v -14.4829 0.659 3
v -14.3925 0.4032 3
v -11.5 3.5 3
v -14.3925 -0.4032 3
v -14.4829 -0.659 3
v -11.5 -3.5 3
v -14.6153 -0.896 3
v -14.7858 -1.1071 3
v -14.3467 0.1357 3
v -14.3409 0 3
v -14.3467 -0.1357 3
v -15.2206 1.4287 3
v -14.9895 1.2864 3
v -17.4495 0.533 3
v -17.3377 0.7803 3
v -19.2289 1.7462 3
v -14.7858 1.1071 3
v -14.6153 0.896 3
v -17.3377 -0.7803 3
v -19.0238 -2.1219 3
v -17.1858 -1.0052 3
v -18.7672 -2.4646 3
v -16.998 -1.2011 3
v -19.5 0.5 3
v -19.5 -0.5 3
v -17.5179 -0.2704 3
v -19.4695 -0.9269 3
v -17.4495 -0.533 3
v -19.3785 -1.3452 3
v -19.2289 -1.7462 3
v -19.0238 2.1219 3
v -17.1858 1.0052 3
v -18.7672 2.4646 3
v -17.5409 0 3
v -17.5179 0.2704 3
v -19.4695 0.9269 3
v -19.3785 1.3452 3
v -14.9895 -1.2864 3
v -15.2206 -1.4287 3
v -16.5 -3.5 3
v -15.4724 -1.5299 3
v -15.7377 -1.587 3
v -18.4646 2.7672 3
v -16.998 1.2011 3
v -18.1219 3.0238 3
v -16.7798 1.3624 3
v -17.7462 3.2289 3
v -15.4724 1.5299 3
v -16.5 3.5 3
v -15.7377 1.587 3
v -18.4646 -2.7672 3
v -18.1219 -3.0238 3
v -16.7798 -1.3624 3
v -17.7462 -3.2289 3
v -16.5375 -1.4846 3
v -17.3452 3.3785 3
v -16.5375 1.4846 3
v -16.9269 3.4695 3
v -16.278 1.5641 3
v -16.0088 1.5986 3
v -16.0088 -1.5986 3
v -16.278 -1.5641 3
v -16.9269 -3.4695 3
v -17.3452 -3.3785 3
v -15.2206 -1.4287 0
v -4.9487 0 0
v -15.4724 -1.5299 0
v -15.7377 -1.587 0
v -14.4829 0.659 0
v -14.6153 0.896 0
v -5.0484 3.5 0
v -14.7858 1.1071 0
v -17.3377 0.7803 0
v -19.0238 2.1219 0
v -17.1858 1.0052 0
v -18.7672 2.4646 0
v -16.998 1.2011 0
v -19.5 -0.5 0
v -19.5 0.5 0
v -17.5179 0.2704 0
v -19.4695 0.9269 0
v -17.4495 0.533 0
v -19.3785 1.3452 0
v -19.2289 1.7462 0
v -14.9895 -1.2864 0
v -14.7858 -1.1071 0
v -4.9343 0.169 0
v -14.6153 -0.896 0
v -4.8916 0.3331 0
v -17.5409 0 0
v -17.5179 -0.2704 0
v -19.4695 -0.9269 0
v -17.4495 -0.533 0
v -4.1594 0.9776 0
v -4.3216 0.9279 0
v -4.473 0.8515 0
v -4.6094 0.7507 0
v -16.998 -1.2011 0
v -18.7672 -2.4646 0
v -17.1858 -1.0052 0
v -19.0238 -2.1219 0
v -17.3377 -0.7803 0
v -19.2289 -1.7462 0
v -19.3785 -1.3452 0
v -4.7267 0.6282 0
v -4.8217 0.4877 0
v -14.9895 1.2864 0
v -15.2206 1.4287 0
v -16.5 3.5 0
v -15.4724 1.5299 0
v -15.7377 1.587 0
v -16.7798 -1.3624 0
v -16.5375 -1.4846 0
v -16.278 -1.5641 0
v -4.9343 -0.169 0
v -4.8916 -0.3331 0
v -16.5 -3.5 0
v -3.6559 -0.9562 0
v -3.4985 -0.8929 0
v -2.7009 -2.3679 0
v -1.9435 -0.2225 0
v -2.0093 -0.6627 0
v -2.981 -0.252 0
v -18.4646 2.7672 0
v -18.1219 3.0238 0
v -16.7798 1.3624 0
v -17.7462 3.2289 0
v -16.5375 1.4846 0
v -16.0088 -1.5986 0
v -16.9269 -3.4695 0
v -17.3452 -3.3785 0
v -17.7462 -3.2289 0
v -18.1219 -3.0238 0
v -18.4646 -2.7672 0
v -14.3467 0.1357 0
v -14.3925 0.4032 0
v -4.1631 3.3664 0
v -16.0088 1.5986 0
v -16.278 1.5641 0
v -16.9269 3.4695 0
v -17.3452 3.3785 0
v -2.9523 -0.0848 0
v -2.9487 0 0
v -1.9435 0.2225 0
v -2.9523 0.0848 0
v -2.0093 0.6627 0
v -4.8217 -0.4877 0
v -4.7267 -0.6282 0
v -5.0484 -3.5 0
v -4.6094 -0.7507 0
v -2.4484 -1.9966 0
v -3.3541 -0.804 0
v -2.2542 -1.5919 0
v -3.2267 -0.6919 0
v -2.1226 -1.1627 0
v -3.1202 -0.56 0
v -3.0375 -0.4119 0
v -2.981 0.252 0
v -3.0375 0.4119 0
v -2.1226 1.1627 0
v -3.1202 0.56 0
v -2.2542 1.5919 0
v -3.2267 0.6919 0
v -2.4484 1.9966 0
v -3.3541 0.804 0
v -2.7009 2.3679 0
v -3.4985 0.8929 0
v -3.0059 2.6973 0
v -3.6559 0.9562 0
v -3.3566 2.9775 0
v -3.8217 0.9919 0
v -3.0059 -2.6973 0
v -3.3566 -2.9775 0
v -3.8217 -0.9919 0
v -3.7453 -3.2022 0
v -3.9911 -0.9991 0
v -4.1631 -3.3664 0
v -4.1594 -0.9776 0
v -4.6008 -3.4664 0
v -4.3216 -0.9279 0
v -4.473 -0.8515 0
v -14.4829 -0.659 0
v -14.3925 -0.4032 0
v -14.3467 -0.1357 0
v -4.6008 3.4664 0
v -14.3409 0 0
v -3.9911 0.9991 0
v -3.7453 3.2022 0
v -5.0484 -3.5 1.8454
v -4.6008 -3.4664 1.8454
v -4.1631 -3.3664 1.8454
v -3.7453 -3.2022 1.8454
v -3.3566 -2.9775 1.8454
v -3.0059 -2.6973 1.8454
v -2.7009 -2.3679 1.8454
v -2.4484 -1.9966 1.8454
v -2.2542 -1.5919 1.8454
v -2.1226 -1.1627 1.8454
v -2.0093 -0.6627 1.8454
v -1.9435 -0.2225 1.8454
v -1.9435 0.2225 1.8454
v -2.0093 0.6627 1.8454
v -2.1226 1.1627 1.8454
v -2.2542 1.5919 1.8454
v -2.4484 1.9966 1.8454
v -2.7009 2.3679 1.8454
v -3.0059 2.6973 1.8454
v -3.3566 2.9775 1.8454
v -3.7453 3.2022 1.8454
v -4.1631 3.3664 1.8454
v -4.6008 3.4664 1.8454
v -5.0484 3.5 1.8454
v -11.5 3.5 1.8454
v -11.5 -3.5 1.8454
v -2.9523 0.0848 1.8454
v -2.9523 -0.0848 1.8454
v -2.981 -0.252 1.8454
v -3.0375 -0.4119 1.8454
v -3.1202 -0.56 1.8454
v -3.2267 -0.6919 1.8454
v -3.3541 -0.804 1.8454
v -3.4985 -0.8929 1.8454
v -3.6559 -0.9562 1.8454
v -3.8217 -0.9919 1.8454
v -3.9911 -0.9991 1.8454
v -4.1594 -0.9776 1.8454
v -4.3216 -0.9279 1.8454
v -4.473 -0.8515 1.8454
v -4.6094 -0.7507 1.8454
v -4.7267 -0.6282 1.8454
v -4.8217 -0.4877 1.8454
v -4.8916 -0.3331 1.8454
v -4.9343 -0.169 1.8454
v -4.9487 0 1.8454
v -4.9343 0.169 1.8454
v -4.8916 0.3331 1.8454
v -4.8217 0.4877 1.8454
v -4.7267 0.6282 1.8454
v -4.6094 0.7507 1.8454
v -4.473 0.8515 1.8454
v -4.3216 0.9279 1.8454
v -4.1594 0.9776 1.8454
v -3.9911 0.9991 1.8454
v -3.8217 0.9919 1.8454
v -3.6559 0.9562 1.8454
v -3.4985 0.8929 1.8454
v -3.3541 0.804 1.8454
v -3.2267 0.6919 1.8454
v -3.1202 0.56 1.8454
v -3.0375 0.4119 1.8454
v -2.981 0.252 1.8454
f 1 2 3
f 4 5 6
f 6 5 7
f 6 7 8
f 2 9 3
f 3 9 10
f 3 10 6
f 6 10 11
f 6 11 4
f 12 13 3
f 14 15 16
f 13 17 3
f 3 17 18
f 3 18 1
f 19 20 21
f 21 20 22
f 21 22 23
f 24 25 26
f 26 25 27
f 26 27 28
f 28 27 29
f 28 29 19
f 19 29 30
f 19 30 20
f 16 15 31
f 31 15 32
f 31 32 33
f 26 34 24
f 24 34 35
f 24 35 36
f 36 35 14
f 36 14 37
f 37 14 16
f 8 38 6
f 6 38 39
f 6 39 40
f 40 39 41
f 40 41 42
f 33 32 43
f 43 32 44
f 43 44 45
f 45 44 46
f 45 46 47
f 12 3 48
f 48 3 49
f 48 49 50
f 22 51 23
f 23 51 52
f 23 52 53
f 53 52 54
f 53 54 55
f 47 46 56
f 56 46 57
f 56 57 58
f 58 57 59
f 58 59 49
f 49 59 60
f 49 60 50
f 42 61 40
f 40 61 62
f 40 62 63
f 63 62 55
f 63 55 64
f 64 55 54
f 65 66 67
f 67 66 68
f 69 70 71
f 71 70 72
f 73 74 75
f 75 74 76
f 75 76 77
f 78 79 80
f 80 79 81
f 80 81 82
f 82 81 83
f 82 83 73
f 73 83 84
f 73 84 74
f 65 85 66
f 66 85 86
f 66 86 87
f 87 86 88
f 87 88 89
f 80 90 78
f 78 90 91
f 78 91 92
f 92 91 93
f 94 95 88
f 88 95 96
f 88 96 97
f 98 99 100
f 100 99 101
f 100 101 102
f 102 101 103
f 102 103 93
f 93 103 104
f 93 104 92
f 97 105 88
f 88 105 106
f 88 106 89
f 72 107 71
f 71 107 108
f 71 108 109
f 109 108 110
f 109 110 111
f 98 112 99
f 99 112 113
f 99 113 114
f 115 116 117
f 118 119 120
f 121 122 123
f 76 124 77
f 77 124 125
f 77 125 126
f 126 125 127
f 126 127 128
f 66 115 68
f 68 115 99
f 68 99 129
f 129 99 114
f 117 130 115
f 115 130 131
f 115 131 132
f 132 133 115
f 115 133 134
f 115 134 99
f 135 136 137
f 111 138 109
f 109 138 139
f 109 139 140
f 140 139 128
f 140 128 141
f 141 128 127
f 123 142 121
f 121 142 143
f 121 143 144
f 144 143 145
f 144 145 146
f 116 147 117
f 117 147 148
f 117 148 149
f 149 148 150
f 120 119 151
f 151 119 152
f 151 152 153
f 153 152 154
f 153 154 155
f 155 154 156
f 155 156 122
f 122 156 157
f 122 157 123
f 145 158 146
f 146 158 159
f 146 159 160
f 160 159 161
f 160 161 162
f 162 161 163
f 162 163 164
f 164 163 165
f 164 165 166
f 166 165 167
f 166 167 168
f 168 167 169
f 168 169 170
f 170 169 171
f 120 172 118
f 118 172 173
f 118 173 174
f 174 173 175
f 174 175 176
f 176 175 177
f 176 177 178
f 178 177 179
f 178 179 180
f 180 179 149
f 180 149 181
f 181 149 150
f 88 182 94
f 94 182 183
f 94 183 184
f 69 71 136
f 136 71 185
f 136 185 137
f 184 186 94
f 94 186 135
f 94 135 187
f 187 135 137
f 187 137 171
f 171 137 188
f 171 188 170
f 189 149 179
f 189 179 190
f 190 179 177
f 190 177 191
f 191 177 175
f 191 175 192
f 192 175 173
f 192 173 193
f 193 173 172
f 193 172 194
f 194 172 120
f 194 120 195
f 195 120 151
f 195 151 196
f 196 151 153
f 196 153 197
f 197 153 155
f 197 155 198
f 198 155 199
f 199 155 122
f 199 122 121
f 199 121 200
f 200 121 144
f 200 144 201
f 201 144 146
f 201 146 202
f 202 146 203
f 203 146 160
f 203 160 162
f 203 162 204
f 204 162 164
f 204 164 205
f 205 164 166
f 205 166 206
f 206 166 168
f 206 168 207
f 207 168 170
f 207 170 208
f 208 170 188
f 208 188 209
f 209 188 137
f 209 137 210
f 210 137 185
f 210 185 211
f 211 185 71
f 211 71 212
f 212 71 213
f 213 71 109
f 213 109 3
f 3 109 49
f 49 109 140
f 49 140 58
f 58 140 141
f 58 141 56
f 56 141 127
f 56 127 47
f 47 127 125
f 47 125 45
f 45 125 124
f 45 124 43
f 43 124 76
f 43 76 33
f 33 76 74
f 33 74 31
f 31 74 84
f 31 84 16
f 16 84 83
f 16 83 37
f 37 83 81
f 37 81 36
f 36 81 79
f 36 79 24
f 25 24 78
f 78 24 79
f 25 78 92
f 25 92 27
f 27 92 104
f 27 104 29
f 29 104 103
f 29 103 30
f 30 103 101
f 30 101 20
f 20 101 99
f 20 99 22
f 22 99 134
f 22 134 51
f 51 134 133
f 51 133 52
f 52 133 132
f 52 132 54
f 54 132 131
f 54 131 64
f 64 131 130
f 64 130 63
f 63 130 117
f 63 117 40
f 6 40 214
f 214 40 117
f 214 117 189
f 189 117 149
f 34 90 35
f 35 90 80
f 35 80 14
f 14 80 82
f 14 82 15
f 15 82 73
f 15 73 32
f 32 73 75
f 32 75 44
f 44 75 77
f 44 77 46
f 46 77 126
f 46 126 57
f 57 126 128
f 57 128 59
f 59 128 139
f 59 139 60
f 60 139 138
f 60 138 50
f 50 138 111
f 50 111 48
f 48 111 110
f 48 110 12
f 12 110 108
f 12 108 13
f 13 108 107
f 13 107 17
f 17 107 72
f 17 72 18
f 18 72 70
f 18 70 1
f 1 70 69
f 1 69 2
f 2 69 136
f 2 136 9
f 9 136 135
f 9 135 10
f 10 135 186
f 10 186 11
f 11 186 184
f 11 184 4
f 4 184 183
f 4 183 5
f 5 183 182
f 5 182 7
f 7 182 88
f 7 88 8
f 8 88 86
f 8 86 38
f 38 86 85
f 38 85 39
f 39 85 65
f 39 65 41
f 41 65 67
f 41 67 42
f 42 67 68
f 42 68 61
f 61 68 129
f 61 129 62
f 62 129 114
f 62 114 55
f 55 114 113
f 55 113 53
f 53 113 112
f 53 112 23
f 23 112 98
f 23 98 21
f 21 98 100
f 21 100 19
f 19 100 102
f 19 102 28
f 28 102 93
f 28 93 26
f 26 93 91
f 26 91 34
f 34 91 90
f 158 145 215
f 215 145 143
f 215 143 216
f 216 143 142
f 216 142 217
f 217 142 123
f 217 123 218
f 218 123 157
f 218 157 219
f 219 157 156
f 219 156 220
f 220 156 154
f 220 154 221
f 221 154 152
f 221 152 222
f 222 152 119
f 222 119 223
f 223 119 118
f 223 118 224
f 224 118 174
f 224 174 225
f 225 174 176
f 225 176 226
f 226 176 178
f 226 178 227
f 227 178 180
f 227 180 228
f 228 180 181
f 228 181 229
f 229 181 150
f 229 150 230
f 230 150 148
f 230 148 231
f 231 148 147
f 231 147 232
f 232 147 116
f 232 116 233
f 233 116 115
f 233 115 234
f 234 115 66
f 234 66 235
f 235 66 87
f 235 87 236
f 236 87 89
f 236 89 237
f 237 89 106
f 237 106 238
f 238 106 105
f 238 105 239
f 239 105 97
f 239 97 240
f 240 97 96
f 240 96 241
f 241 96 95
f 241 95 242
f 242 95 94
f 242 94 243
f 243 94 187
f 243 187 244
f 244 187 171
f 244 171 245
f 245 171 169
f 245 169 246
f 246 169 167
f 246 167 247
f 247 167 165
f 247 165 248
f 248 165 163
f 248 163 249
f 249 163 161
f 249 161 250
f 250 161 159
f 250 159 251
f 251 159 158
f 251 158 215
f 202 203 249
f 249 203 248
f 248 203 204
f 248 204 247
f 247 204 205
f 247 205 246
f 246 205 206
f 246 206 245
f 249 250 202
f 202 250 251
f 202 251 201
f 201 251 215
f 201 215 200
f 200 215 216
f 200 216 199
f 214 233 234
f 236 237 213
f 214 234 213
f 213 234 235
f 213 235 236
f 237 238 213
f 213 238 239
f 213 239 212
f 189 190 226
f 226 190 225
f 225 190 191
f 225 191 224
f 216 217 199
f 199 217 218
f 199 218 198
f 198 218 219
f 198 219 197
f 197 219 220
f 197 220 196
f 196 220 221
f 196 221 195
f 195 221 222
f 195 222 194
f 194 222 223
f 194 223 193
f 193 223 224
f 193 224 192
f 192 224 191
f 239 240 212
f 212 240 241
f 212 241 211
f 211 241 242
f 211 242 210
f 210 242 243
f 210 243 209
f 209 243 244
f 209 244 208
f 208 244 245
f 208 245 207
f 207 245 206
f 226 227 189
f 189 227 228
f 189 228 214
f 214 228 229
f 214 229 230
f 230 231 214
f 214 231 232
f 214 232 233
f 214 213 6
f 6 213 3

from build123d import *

# Parameters (mm, degrees)
IZIM1_R                     = 1.6
IZIM1_R_2                   = 1
Y_KSEKLIK_EKSTR_ZYON1_DEPTH = 3
IZIM2_W                     = 1.154616757
IZIM2_H                     = 7
KES_EKSTR_ZYON1_DEPTH       = 11.5


with BuildPart() as part:
    # Çizim1 → Yükseklik-Ekstrüzyon1 (new body)
    with BuildSketch(Plane.XY):
        with BuildLine():
            Line((-19.5, 0.5), (-19.5, -0.5))
            ThreePointArc((-19.5, -0.5), (-18.621320344, -2.621320344), (-16.5, -3.5))
            Line((-16.5, -3.5), (-5.048446869, -3.5))
            ThreePointArc((-5.048446869, -3.5), (-3.176019241, -2.843931479), (-2.122552163, -1.162676519))
            Line((-2.122552163, -1.162676519), (-2.009308765, -0.662676519))
            ThreePointArc((-2.009308765, -0.662676519), (-1.935203471, 0), (-2.009308765, 0.662676519))
            Line((-2.009308765, 0.662676519), (-2.122552163, 1.162676519))
            ThreePointArc((-2.122552163, 1.162676519), (-3.176019241, 2.843931479), (-5.048446869, 3.5))
            Line((-5.048446869, 3.5), (-16.5, 3.5))
            ThreePointArc((-16.5, 3.5), (-18.621320344, 2.621320344), (-19.5, 0.5))
        make_face()
        with Locations((-15.940902873, 0)):
            Circle(IZIM1_R, mode=Mode.SUBTRACT)
        with Locations((-3.94869662, 0)):
            Circle(IZIM1_R_2, mode=Mode.SUBTRACT)
    extrude(amount=Y_KSEKLIK_EKSTR_ZYON1_DEPTH)

    # Çizim2 → Kes-Ekstrüzyon1 (cut, symmetric)
    with BuildSketch(Plane(origin=(0, 0, 0), x_dir=(0, 0, -1), z_dir=(1, 0, 0))):
        with Locations((-2.422691622, 0)):
            Rectangle(IZIM2_W, IZIM2_H)
    extrude(amount=KES_EKSTR_ZYON1_DEPTH, both=True, mode=Mode.SUBTRACT)


solid = part.part
